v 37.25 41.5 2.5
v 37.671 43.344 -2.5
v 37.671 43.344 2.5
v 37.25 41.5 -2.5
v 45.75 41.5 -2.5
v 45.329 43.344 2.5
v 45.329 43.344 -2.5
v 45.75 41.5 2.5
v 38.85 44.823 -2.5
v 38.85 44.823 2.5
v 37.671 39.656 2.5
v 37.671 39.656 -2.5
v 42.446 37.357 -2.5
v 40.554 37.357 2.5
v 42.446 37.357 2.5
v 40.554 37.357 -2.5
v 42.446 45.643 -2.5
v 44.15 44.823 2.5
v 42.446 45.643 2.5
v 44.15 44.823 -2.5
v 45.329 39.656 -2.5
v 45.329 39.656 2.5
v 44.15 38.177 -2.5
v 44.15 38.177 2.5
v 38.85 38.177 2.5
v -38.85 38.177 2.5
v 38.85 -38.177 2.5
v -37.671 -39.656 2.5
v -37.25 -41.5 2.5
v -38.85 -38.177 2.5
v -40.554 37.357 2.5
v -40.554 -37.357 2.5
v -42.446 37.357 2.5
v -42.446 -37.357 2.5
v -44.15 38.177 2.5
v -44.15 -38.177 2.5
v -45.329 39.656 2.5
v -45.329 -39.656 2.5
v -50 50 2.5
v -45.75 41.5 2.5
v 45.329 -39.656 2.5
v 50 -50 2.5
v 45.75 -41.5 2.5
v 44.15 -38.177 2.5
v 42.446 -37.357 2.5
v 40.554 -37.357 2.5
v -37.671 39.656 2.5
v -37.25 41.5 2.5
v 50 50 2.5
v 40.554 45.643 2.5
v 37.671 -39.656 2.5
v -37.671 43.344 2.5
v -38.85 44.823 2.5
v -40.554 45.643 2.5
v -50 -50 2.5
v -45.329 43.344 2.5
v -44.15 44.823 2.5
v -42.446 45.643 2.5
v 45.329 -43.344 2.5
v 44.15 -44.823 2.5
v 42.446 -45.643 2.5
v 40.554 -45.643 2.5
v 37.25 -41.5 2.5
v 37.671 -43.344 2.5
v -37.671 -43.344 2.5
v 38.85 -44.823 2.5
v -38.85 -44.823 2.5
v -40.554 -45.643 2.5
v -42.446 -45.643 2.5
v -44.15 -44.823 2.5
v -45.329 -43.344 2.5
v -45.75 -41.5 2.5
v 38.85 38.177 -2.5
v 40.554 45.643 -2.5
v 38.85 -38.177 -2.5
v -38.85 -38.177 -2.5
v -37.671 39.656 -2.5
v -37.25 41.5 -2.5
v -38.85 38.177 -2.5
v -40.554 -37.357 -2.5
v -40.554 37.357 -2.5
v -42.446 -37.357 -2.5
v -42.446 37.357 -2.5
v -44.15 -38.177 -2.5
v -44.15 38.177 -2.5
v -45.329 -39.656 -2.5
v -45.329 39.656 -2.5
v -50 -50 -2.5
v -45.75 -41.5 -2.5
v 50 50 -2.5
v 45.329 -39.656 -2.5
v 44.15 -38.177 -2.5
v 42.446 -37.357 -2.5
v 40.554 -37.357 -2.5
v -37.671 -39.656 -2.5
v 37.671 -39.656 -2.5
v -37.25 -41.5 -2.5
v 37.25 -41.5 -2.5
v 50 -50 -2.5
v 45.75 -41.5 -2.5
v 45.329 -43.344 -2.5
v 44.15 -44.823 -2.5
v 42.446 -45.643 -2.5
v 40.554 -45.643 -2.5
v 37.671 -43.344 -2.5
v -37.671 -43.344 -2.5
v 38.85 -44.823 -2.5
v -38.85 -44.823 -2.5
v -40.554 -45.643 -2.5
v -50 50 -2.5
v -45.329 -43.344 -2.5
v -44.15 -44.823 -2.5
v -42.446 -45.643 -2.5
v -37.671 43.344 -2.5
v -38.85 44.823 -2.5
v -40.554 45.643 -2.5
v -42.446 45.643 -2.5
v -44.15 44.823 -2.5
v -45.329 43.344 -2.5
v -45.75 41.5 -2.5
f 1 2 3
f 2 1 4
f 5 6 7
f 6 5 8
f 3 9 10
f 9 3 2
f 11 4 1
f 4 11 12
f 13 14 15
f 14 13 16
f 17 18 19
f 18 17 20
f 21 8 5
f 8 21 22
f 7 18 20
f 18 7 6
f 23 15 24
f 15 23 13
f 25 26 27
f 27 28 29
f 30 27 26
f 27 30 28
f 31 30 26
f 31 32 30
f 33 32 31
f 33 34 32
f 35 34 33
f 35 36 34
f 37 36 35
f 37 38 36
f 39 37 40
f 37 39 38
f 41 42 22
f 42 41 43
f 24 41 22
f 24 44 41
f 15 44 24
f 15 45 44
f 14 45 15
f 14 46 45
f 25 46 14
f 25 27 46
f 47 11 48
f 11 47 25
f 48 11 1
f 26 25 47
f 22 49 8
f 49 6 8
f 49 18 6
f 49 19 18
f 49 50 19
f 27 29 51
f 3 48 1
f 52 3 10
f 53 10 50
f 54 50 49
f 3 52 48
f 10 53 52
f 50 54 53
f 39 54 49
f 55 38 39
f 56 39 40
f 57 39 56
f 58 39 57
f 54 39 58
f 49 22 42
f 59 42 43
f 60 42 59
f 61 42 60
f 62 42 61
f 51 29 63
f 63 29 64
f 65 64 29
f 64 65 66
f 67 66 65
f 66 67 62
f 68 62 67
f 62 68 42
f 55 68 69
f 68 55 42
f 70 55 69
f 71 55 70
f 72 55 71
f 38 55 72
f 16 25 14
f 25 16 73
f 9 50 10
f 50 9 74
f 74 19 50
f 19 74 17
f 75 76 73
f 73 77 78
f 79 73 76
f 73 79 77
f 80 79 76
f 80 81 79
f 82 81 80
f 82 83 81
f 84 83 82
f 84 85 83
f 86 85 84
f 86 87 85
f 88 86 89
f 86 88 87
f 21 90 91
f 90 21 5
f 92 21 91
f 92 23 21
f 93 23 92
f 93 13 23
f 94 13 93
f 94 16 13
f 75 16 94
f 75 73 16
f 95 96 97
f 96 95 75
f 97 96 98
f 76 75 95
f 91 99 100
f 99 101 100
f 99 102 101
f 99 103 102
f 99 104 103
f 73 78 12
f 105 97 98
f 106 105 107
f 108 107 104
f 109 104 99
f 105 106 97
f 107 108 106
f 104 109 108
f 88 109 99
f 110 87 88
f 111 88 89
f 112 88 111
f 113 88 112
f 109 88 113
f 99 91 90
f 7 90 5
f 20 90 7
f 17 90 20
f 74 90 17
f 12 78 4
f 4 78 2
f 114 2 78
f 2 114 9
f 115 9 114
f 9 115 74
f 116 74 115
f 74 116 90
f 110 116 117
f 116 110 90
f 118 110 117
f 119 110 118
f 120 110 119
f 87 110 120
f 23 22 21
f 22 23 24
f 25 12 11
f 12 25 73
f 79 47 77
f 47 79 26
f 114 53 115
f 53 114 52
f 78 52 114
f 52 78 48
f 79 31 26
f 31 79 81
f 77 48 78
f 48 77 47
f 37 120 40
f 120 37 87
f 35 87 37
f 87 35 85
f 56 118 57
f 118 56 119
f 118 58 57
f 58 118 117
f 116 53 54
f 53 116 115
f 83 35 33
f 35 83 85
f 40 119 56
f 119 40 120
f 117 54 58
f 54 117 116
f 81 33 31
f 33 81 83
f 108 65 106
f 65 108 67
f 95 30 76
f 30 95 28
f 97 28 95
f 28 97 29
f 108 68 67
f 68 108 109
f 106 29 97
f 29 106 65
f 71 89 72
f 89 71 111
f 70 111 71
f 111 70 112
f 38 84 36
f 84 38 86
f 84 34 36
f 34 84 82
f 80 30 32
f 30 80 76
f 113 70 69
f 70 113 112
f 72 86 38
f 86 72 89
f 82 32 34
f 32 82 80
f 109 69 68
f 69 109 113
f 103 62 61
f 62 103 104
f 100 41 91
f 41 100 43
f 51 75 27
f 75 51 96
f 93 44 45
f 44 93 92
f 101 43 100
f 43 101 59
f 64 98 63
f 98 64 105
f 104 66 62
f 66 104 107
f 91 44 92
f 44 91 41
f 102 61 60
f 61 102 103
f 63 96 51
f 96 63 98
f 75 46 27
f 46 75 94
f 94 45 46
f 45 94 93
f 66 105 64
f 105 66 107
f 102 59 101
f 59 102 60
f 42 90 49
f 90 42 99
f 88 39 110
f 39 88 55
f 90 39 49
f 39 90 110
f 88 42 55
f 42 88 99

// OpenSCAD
// Generated by SolidPython 1.1.3 on 2023-07-03 18:05:35


difference() {
	cube(center = true, size = [100, 100, 5]);
	union() {
		translate(v = [41.5000000000, 41.5000000000]) {
			cylinder(center = true, h = 5, r = 4.2500000000);
		}
		translate(v = [-41.5000000000, 41.5000000000]) {
			cylinder(center = true, h = 5, r = 4.2500000000);
		}
		translate(v = [-41.5000000000, -41.5000000000]) {
			cylinder(center = true, h = 5, r = 4.2500000000);
		}
		translate(v = [41.5000000000, -41.5000000000]) {
			cylinder(center = true, h = 5, r = 4.2500000000);
		}
	}
}
/***********************************************
*********      SolidPython code:      **********
************************************************
 
import solid
import numbers
import pudb
from solid.utils import *
import viewscad
import subprocess
import os
import os.path as osp
import math
import sys

chamfer_extrude=solid.import_scad("./chamfer_extrude.scad")
chamfer_extrude=chamfer_extrude.chamfer_extrude
r = viewscad.Renderer(width=800, height=800)

def debug(model,f_name,path="/home/ts/code/projects/mfd/designs/debug"):
    solid.scad_render_to_file(model,osp.join(path,f_name)+".scad")
#generate position list of wells using offset from center
wells_pos_from_center_4 = lambda offset: [[-offset,offset],
                                        [offset, offset],
                                        [-offset, -offset],
                                        [offset, -offset]]
#wells_pos_from_center_2 = lambda offset: [[0,offset],
#                                        [0, -offset]]
wells_pos_from_center_2 = lambda offset: [[offset,0],
                                        [-offset,0]]

def make_well(dims,shape=None,height=None,dxf=False):
    def circle_cylinder():
        if dxf or (height is None):
            well = solid.circle(r=dims, segments=64)
        else:
            well = solid.cylinder(r=dims, h=height, segments=64, center = True)
        return well
    if dims is None:
        sys.exit("radius needs to be a number")
    if isinstance(dims, numbers.Number):
        well =circle_cylinder()
    elif len(dims)==1:
        if isinstance(dims[1], numbers.Number):
            well =circle_cylinder()
        else:
            sys.exit("radius needs to be a number")
    elif len(dims)==2:
        well = solid.square(dims,center = True)
    elif len(dims)==3:
        well = solid.cube(dims, center = True)
    return well

def wells_top_bottom(center_gap,device_dims=None,shape=None,height=None, positions = None, dxf = False):
    well_shape = make_well(device_dims,shape=shape,height=height,dxf=dxf)
    wells = []
    if positions is None:
        offset = radius+radius/2.0
        positions = wells_pos_from_center_2(offset)
    if dxf or (height is None):
        height = 0
    for position in positions:
        if dxf:
            wells.append(solid.translate([position[0],position[1]])(well_shape))
        else:
            wells.append(solid.translate([position[0],position[1],height/2.0])(well_shape))
    return  union()(*wells)

#place wells in four corners 
def four_corner(radius,height=None, positions = None, dxf = False):
    #if well pos not specified set
    #to equally spaced by half radius
    if positions is None:
        offset = radius+radius/2.0
        positions = wells_pos_from_center_4(offset)
    if dxf or (height is None):
        height = 0
    #make wells at positions with specified radius and height
    wells = []
    for position in positions:
        #make circle if making dxf
        if dxf:
            well_shape = solid.circle(r=radius, segments=64)
            well_shape = solid.translate([position[0],position[1]])(well_shape)
        #if stl make cylinder
        else:
            well_shape = solid.cylinder(r=radius, h=height, segments=64, center = True)
            well_shape = solid.translate([position[0],position[1],height/2.0])(well_shape)
        wells.append(well_shape)
    return  union()(*wells)

#generate channels 
def make_channels(length,width,height=0,num_chans=1,max_chans=None,spacing=None, dxf = False,
                  rotate_channels=False):
    if dxf or (height is None):
        height = 0
    #if channel gap not defined, is equal to
    if spacing is None: spacing = width
    #calculate number of channels if fitting max num within given width
    if not max_chans is None:
        import math
        num_chans = math.floor((max_chans-spacing)/(width+spacing))
    #get total width of channel section  
    total_width = (width*num_chans)+(spacing*(num_chans-1))

    #make template channel
    #if rotate_channels: width, length = length, width
    if dxf:
        channel_t = solid.square([length,width],center = True)
    else:
        channel_t = solid.cube([length,width,height], center = True)

    #if number channels is even, offset the first channel to center its gap
    if num_chans % 2 == 0: centering = -(width/2.0+spacing/2.0)
    else: centering = 0
    #move template channel up to align bottom at z = 0 
    #and offset center if necessary
    if dxf:
        channel_t = solid.translate([0,centering])(channel_t)
    else:
        channel_t = solid.translate([0,centering,height/2.0])(channel_t)

    #if rotate_channels: length,width = width,length
    #start making the channels
    channels = []
    for i in range(num_chans):
        #if i=0 there is no translation
        #if i=1, we make the first channel adjacent to second
        direction = i

        #if i>=1, we add channels alternating left and right
        if i >= 1:
            direction = -(i/2.0)
            if i % 2 == 1: direction = (-direction)+0.5
                
        #make channel at right position and add it to channel list
        translation_coords = [0,direction*(width+spacing)]
        #if rotate_channels: translation_coords = [direction*(width+spacing),0]
        if dxf:
            channel = solid.translate(translation_coords)(channel_t)
        else:
            channel = solid.translate([*translation_coords,0])(channel_t)
        channels.append(channel)
    
    #group all channels as one object
    channels = union()(*channels)
    #compute the x,y,z dimensions in order to pass as arguments 
    #for construction of other parts of device (such as the chambers)
    measurements = {'x':(length/2.0,-length/2.0),
                    'y':(total_width/2.0,-total_width/2.0)}
    if not dxf:
        measurements['z'] = (height,0)
    if rotate_channels:
        channels = solid.rotate(90)(channels)
        measurements['x'],measurements['y']=measurements['y'],measurements['x']
    return channels,measurements

def make_chambers(msrs,height=None,extra=0,len_until=None,width=None, dxf = False):
    #computes x,y,z length
    total = lambda x : abs(x[0]) + abs(x[1])
    
    #if specific height if specified
    #otherwise use same height as channels
    if dxf:
        pass
    elif not height is None:
        msrs['z'] = (height,0)
    else:
        msrs['z'] = (0,0)
        
    #make copy of measurements from channels to modify chamber dimensions 
    #and add length to chambers as specified
    chamber_dims = msrs.copy()
    #calculate length of chamber to reach specified offset
    if not len_until is None:
        chamber_len = len_until-(msrs['x'][0])
    #or add specified length to channel length (if not specified, adds 0)
    else:
        chamber_len = msrs['x'][0]+extra
    #set the chamber length based 
    chamber_dims['x'] = (chamber_len/2.0,-(chamber_len/2.0))
    #compute final dimensions of chamber
    if not width is None:
        chamber_dims['y'] = (width/2.0,-width/2.0)
    chamber_dims = [total(size) for size in chamber_dims.values()]
        
    #calculate chamber translation offset to place adjacent to channels
    chamber_trslt = msrs['x'][0]+(chamber_len/2.0)
    #compute chamber translation coordinates to align with channels
    #x = 1 moves chamber above channels
    #x = -1 moves chamber below channels
    if dxf:
        trslt = lambda x : [x*(chamber_trslt),0]
    else:
        trslt = lambda x : [x*(chamber_trslt),0,msrs['z'][0]/2.0]
    
    #function to make chamber at top or at bottom 
    if dxf:
        move = lambda x : solid.translate(trslt(x))(solid.square(chamber_dims, center = True) )
    else:
        move = lambda x : solid.translate(trslt(x))(solid.cube(chamber_dims,center = True))
    #make top and bottom chambers and return them as grouped
    top = move(1)
    bottom = move(-1)
    #chambers=solid.rotate(90)(solid.union()(top,bottom))
    chambers=(solid.union()(top,bottom))

    return chambers

#create alignment features 
def alignment_features(unit,dims,grid_size, mask_size = None, alignment = "hollow", units_from_center = (2.5,2.5), corner_len=None):
    width = grid_size[0]*dims[0]
    length = grid_size[1]*dims[1]
    if mask_size is None and corner_len is None:
        corner_len = (dims[0] + dims[1]) /2 / 8
    corner = lambda thickness_div : solid.union()( solid.square([corner_len,corner_len/thickness_div],center=False), solid.square([corner_len/thickness_div,corner_len],center=False) )
    
    def make_full(thickness_div):
        thickness = corner_len/thickness_div
        tr = solid.translate([0, 0, 0 ])(solid.rotate(180)(corner(thickness_div)))
        tr = solid.translate([thickness/2,thickness/2,0])(tr)
        bl = solid.translate([0, 0, 0 ])(solid.rotate(0)(corner(thickness_div)))
        bl = solid.translate([-thickness/2,-thickness/2,0])(bl)
        return solid.union()(tr,bl)
    
    def make_hollow(thickness_div):
        thickness = corner_len/(thickness_div/2)
        inner = make_full(thickness_div)
        outer = make_full(thickness_div/2)
        hollow = outer - inner 
        return hollow
    
    center = (width /2 , length/2)
    mask_pos = lambda x,y : (center[0] + x*(float(units_from_center[0])*dims[0]), center[1] + y*(float(units_from_center[1])*dims[1]))
    positions = []
    positions.append(mask_pos(1,0))
    positions.append(mask_pos(0,1))
    positions.append(mask_pos(-1,0))
    positions.append(mask_pos(0,-1))
    make_mask = lambda mtype : make_hollow(8) if mtype == "hollow" else make_full(8)
    masks = [ solid.translate([*position,0])(make_mask(alignment)) for position in positions]
    
    solid.scad_render_to_file(solid.union()(*masks),"./designs/open_chamber/masks.scad")
    #return unit - solid.union()(*masks)
    return solid.union()(*masks,unit)

def create_outline(thickness, array, dims, grid_size,):
    width = grid_size[0]*dims[0] + thickness *2
    length = grid_size[1]*dims[1] + thickness *2
    outer = solid.translate([-thickness, -thickness,0])(solid.square([width, length]))
    return outer-array

def create_wall(wall_thickness, outline_thickness, dims, grid_size, wall_height = 2000, dxf = False):
    inner_width = grid_size[0]*dims[0] + outline_thickness *2
    inner_length = grid_size[1]*dims[1] + outline_thickness *2
    outer_width = inner_width + wall_thickness * 2
    outer_length = inner_length + wall_thickness * 2
    outer_pos_x = -outline_thickness-wall_thickness
    outer_pos_y = -outline_thickness-wall_thickness
    inner_pos_x = -outline_thickness
    inner_pos_y = -outline_thickness
    if dxf:
        inner_wall = solid.translate([inner_pos_x,
                                      inner_pos_y,
                                      0])(solid.square([inner_width, inner_length]))
        outer_wall = solid.translate([outer_pos_x,
                                      outer_pos_y,
                                      0])(solid.square([outer_width, outer_length]))

        return outer_wall-inner_wall
    else:
        inner_wall = solid.translate([inner_pos_x,
                                      inner_pos_y,
                                      0])(solid.cube([inner_width, inner_length,wall_height]))
        outer_wall = solid.translate([outer_pos_x,
                                      outer_pos_y,
                                      0])(solid.cube([outer_width, outer_length,wall_height]))

        return outer_wall-inner_wall, {'wall_height': wall_height,
                                       'wall_thickness': wall_thickness,
                                       'inner_width':inner_width,
                                       'inner_length': inner_length,
                                       'outer_width': outer_width,
                                       'outer_length': outer_length,
                                       'outer_pos_x' : outer_pos_x,
                                       'outer_pos_y' : outer_pos_y,
                                       'inner_pos_x' : inner_pos_x,
                                       'inner_pos_y' : inner_pos_y}

def create_thicker_wall(wall_thickness, outer_wall_offset, wall_dims, dims, grid_size, height_start = .2, height_end=2, dxf = False):
    addon_wall,thicker_wall_dims = create_wall(wall_thickness, outer_wall_offset, dims, grid_size, wall_height=height_end-height_start, dxf = False)
    addon_wall = solid.translate([0,0,height_start])(addon_wall)

    thicker_wall_dims['wall_height'] = height_end
    thicker_wall_dims['wall_thickness'] = wall_dims['wall_thickness'] + wall_thickness
    return addon_wall, thicker_wall_dims
 
def add_lock_to_wall(wall,wall_dims,y_offset = 0,cut_ratio=0.7,L_length=3, gap_ratio=0.05, axis="x",width_ratio=1/2):
    # Makes L shape
    def make_L(max_length,length_thickness,max_width,width_thickness,height,y_offset):
        length = solid.cube([max_length,length_thickness,height])
        width = solid.cube([width_thickness,max_width,height])
        width = solid.translate([max_length-(width_thickness),0,0])(width)
        L = solid.union()(width,length)
        debug(L,"L")
        if axis == "x":
            L = solid.rotate(-90)(L)
            L = solid.translate([0,max_length,0])(L)
        else:
            L = solid.rotate(-180)(L)
            L = solid.translate([max_length,max_width,0])(L)
        return solid.translate([0,0,y_offset])(L)
    
    lock_length = L_length
    lock_width = wall_dims['wall_thickness']*width_ratio
    lock_length_thickness = lock_width/2
    lock_width_thickness = lock_width/2
    L_lock = make_L(lock_length,lock_length_thickness,lock_width,lock_width_thickness, wall_dims['wall_height']-y_offset, y_offset)
    
    margin_space = lock_length - lock_length*(1-gap_ratio)
    key_length = lock_length-margin_space
    key_length_thickness = lock_length_thickness-(margin_space*2)
    key_width = lock_width-(margin_space*2)
    key_width_thickness = lock_width_thickness-(margin_space*2)
    L_key = make_L(key_length,key_length_thickness,key_width,key_width_thickness, wall_dims['wall_height']-y_offset, y_offset)
    L_key = solid.translate([margin_space,margin_space,0])(L_key)
    L = solid.union()(L_lock,L_key)
    debug(L,"L")
    
    #Make cube to be used as negative to split frame in a half
    #Can choose if making left or right negative, specify ratio of split
    def make_negative(right,cut_ratio):
        if axis == "x":
            if right:
                length = wall_dims['outer_length']*(1-cut_ratio)
                pos_x = wall_dims['outer_pos_x']+(wall_dims['outer_length']*cut_ratio)
            else:
                length = wall_dims['outer_length']*(cut_ratio)
                pos_x = wall_dims['outer_pos_x'] 
            negative = solid.cube([wall_dims['outer_width'],length, wall_dims['wall_height']])
            negative = solid.translate([wall_dims['outer_pos_y'],pos_x,0])(negative)
        else:
            if right:
                length = wall_dims['outer_width']*(1-cut_ratio)
                pos_x = wall_dims['outer_pos_y']+(wall_dims['outer_width']*cut_ratio)
            else:
                length = wall_dims['outer_width']*(cut_ratio)
                pos_x = wall_dims['outer_pos_y'] 
            negative = solid.cube([length,wall_dims['outer_length'], wall_dims['wall_height']])
            negative = solid.translate([pos_x,wall_dims['outer_pos_x'],0])(negative)
        return negative, pos_x, length 
                      
    #Make negatives
    negative_right, right_half_pos_x, right_half_length = make_negative(True,cut_ratio)
    negative_left, left_half_pos_x, right_half_length = make_negative(False,cut_ratio)
    #Make halves
    left_half = solid.difference()(wall,negative_right)
    right_half = solid.difference()(wall,negative_left)
    def place_L(L, L_length,L_width):
        #Place L on top wall       
        offset_to_center = (wall_dims['wall_thickness']-L_width)/2
        if axis == "x":
            y_pos_top = (wall_dims['outer_pos_y'] +
                    wall_dims['outer_width'] - 
                    L_width - offset_to_center)
            top_L = solid.translate([y_pos_top,
                                     right_half_pos_x-(L_length),
                                     0])(L)
            #Place L on bottom wall       
            y_pos_bottom = wall_dims['outer_pos_y']+offset_to_center
            bottom_L = solid.translate([y_pos_bottom,
                                        right_half_pos_x-L_length,
                                        0])(L)
        else:
            y_pos_top = (wall_dims['outer_pos_x'] +
                    wall_dims['outer_length'] -
                    (L_width+offset_to_center))
            top_L = solid.translate([right_half_pos_x-L_length,
                                     y_pos_top,
                                     0])(L)
            #Place L on bottom wall       
            y_pos_bottom = wall_dims['outer_pos_y']+offset_to_center
            bottom_L = solid.translate([right_half_pos_x-L_length,
                                        y_pos_bottom,
                                        0])(L)
        return bottom_L, top_L
    #Make complimentary L pieces through union and differences
    #Make Lock
    bottom_L_lock, top_L_lock = place_L(L_lock,L_length,lock_width)
    left_half = solid.difference()(left_half,bottom_L_lock)
    left_half = solid.difference()(left_half,top_L_lock)
    #Make Key
    bottom_L_key, top_L_key = place_L(L_key,L_length,lock_width)
    right_half = solid.union()(right_half,bottom_L_key)
    right_half = solid.union()(right_half,top_L_key)
    return left_half, right_half


#build a row x col grid of containment units
def make_unit_array(unit,dims,grid_size, dxf = False, alignment = None, mask_size = None,
                    units_from_center = None,alignment_offset=None, alignment_mark_size=1):
    units = []
    for col in range(grid_size[1]):
        for row in range(grid_size[0]):
            if dxf:
                units.append(solid.translate([row*dims[0],col*dims[1]])(unit))
            else:
                units.append(solid.translate([row*dims[0],col*dims[1],dims[2]/2.0])(unit))
    array = solid.union()(*units)
    if (not alignment is None) and dxf:
        if not alignment_offset is None:
            array = solid.translate([alignment_offset[0],alignment_offset[1]])(array)
        array = alignment_features(array,dims, grid_size, alignment = alignment, mask_size = None, units_from_center = units_from_center,corner_len=alignment_mark_size)
        if not alignment_offset is None:
            array = solid.translate([-alignment_offset[0],-alignment_offset[1]])(array)
    return array


def make_taylor(wells_pos = wells_pos_from_center_4(2.25), well_rad = 1.5 ,
                well_height = 2, chan_w = 0.01, chan_l = 1, chan_h = 0.010 ,
                chan_gap = 0.040, max_chans = None,num_chans=100, chamber_height  = 0.100,
                columns = 1, rows = 1, chamber_len_until=2.25, add_channels = True, add_wells = True, 
                add_chambers = True, save_path = "./", alignment = None, units_from_center = 2,
                mask_size = None, render_stl = False, outline_thickness = 0.050, dxf = True,
                wall_height = 15, wall_thickness = 0.95, casing_x=9, casing_y=9, casing_z=0,rotate_units=0):

    dims = [casing_x, casing_y, casing_z]
    wells = four_corner(well_rad,well_height, dxf = dxf, positions = wells_pos)
    debug(wells,"wells")
    channels, msrs = make_channels(chan_l,chan_w,chan_h,dxf=dxf, spacing = chan_gap, max_chans=max_chans,num_chans=num_chans)
    debug(channels,"channels")
    chambers = make_chambers(msrs,dxf = dxf, height=chamber_height,len_until=chamber_len_until)
    debug(chambers,"chambers")

    #add together and render
    device_parts = []
    if add_channels:
        device_parts.append(channels)
    if add_wells:
        device_parts.append(wells)
    if add_chambers:
        device_parts.append(chambers)
    device=union()(*device_parts)
    device = rotate(rotate_units)(device)

    device=solid.translate([dims[0]/2.0,dims[1]/2.0,0])(device)
    channels = rotate(rotate_units)(channels)
    channels=solid.translate([dims[0]/2,dims[1]/2,0])(channels)
    chambers_wells = union()(wells,chambers)
    chambers_wells = rotate(rotate_units)(chambers_wells)
    chambers_wells=solid.translate([dims[0]/2,dims[1]/2,0])(chambers_wells)

    file_name = str(rows)+'x'+str(columns)+'_units_'
    grid_size = [rows,columns]

    if alignment:
        alignment="full"
    device = make_unit_array(device,dims,grid_size, dxf=dxf, alignment = alignment,
                                 units_from_center = units_from_center)
    channels = make_unit_array(channels,dims,grid_size, dxf=dxf, alignment = alignment,
                                 units_from_center = units_from_center)
    if alignment=="full":
        alignment="hollow"

    chambers_wells = make_unit_array(chambers_wells,dims,grid_size, dxf=dxf, alignment = alignment,
                                 units_from_center =units_from_center)

    def save_model(model,prefix):
        model_fname = os.path.abspath(save_path+prefix+"_"+file_name+".scad")
        solid.scad_render_to_file(model,model_fname)
        return model_fname

    wells_fname = save_model(wells,"wells")
    channels_fname = save_model(channels,"channels")
    device_fname = save_model(device,"device")
    chambers_wells_fname = save_model(chambers_wells,"chambers_wells")
    return (chambers_wells,chambers_wells_fname), (channels,channels_fname), (device,device_fname)

def make_device(design='open',rows=8,columns=6,wells_pos = 4.5,well_offset=3.2, well_rad=3.2,well_height=0.1,
                chan_l=1,chan_w=0.01,chan_h=0.01,chan_gap=0.015,num_chans=101,dxf=True,save_path="./designs/open_chamber/",
                casing_x=9.0,casing_y=18.0,casing_z=0,rotate_units=90,units_from_center=(3,1),chamber_len_until=4.5,
                chamber_width=None,alignment=True, add_wells=True, add_channels=True,add_chambers=True):

    dims = [casing_x, casing_y, casing_z]
    if design == "open":
        wells_pos=wells_pos_from_center_2(wells_pos)
        wells = wells_top_bottom(well_offset*2,device_dims=well_rad,height=well_height, dxf = dxf, positions = wells_pos)
    elif design == "closed":
        wells_pos=wells_pos_from_center_4(wells_pos)
        debug(wells,"wells")
        wells = four_corner(well_offset,well_heightdevice_dims=well_rad, dxf = dxf, positions = wells_pos)
    else:
        print(design+" is not a valid design.\n Choose valid design: 'open' or 'closed'")
        exit()
    wells = rotate(rotate_units)(wells)
    wells=solid.translate([dims[0]/2,dims[1]/2,0])(wells)
    debug(wells,"wells")

    channels, msrs = make_channels(chan_l,chan_w,chan_h,dxf=dxf, spacing = chan_gap, num_chans=num_chans,rotate_channels=False)
    channels = rotate(rotate_units)(channels)
    channels=solid.translate([dims[0]/2,dims[1]/2,0])(channels)

    chambers=make_chambers(msrs,height=None,extra=0,len_until=chamber_len_until, width=chamber_width,dxf = dxf)
    chambers = rotate(rotate_units)(chambers)
    chambers=solid.translate([dims[0]/2,dims[1]/2,0])(chambers)

    device_parts = []
    if add_channels:
        device_parts.append(channels)
    if add_wells:
        device_parts.append(wells)
    if add_chambers:
        device_parts.append(chambers)
    device = union()(*device_parts)
    #device = rotate(rotate_units)(device)
    #device=solid.translate([dims[0]/2.0,dims[1]/2.0,0])(device)

    chambers_wells = []
    if add_chambers:
        chambers_wells.append(chambers)
    if add_wells:
        chambers_wells.append(wells)
    chambers_wells = union()(*chambers_wells)
    #chambers_wells = union()(wells,chambers)
    #chambers_wells = rotate(rotate_units)(chambers_wells)
    #chambers_wells=solid.translate([dims[0]/2,dims[1]/2,0])(chambers_wells)

    file_name = str(rows)+'x'+str(columns)+'_units_'

    grid_size = [rows,columns]
    if alignment:
        alignment="full"
    device = make_unit_array(device,dims,grid_size, dxf=dxf, alignment = alignment,
                                 units_from_center = units_from_center)
    channels = make_unit_array(channels,dims,grid_size, dxf=dxf, alignment = alignment,
                                 units_from_center = units_from_center)
    if alignment=="full":
        alignment="hollow"

    chambers_wells = make_unit_array(chambers_wells,dims,grid_size, dxf=dxf, alignment = alignment,
                                 units_from_center =units_from_center)

    def save_model(model,prefix):
        model_fname = os.path.abspath(save_path+prefix+"_"+file_name+".scad")
        solid.scad_render_to_file(model,model_fname)
        return model_fname

    wells_fname = save_model(wells,"wells")
    channels_fname = save_model(channels,"channels")
    device_fname = save_model(device,"device")
    chambers_wells_fname = save_model(chambers_wells,"chambers_wells")
    return (chambers_wells,chambers_wells_fname), (channels,channels_fname), (device,device_fname)


def make_open_chamber(rows=8,columns=6,wells_pos = wells_pos_from_center_2(4.5), well_rad=3.2,well_height=0.1,
                      chan_l=1,chan_w=0.01,chan_h=0.01,chan_gap=0.015,num_chans=101,dxf=True,save_path="./designs/open_chamber/",
                      casing_x=9.0,casing_y=18.0,casing_z=0,rotate_units=90,units_from_center=(3,1),chamber_len_until=4.5,
                      chamber_width=None,alignment=True, add_wells=True, add_channels=True,add_chambers=True):

    dims = [casing_x, casing_y, casing_z]
    wells = wells_top_bottom(well_rad,height=well_height, dxf = dxf, positions = wells_pos)
    channels, msrs = make_channels(chan_l,chan_w,chan_h,dxf=dxf, spacing = chan_gap, num_chans=num_chans,rotate_channels=False)
    chambers=make_chambers(msrs,height=None,extra=0,len_until=chamber_len_until, width=chamber_width,dxf = dxf)
    debug(chambers,"chambers")
    device_parts = []
    if add_channels:
        device_parts.append(channels)
    if add_wells:
        device_parts.append(wells)
    if add_chambers:
        device_parts.append(chambers)
    device = union()(*device_parts)
    device = rotate(rotate_units)(device)
    device=solid.translate([dims[0]/2.0,dims[1]/2.0,0])(device)
    channels = rotate(rotate_units)(channels)
    channels=solid.translate([dims[0]/2,dims[1]/2,0])(channels)
    chambers_wells = union()(wells,chambers)
    chambers_wells = rotate(rotate_units)(chambers_wells)
    chambers_wells=solid.translate([dims[0]/2,dims[1]/2,0])(chambers_wells)

    file_name = str(rows)+'x'+str(columns)+'_units_'

    grid_size = [rows,columns]
    if alignment:
        alignment="full"
    device = make_unit_array(device,dims,grid_size, dxf=dxf, alignment = alignment,
                                 units_from_center = units_from_center)
    channels = make_unit_array(channels,dims,grid_size, dxf=dxf, alignment = alignment,
                                 units_from_center = units_from_center)
    if alignment=="full":
        alignment="hollow"

    chambers_wells = make_unit_array(chambers_wells,dims,grid_size, dxf=dxf, alignment = alignment,
                                 units_from_center =units_from_center)

    def save_model(model,prefix):
        model_fname = os.path.abspath(save_path+prefix+"_"+file_name+".scad")
        solid.scad_render_to_file(model,model_fname)
        return model_fname

    wells_fname = save_model(wells,"wells")
    channels_fname = save_model(channels,"channels")
    device_fname = save_model(device,"device")
    chambers_wells_fname = save_model(chambers_wells,"chambers_wells")
    return (chambers_wells,chambers_wells_fname), (channels,channels_fname), (device,device_fname)

def to_dxf(scad_path):
    dxf_path = scad_path.replace(".scad",".dxf")
    subprocess.call(["openscad", "-o", dxf_path, scad_path])
    import ezdxf
    temp_dxf = ezdxf.readfile(dxf_path)
    temp_dxf.saveas(dxf_path)

#def make_walls(diameter,thickness,grid_size,dims,height=20,segments=256,make_inner=True):
#    wafer_wall_out = solid.cylinder(r=diameter/2,h=height, segments=segments)
#    wafer_wall_in = solid.cylinder(r=(diameter/2-thickness),h=height, segments=segments)
#    wafer_wall = solid.difference()(wafer_wall_out,wafer_wall_in)
#    wafer_wall = solid.translate([grid_size[1]*dims[1]/2.0,grid_size[0]*dims[0]/2.0])(wafer_wall)
#
#    vertical_wall_length = grid_size[1]*dims[1]
#    horizontal_wall_length = grid_size[0]*dims[0]
#    vertical_wall = solid.cube([vertical_wall_length,thickness,height],center = True)
#    vertical_wall = solid.translate([vertical_wall_length/2,0,height/2])(vertical_wall)
#    horizontal_wall = solid.cube([thickness,horizontal_wall_length,height],center = True)
#    horizontal_wall = solid.translate([0,vertical_wall_length/2,height/2])(horizontal_wall)
#    walls = []
#    walls.append(horizontal_wall)
#    walls.append(vertical_wall)
#    for col in range(grid_size[1]):
#        if col == grid_size[1]-1: 
#            walls.append(solid.translate([0,(col+1)*dims[1]])(vertical_wall))
#        elif col > 0 and col < grid_size[1]-1 and make_inner==True:
#            walls.append(solid.translate([0,(col+1)*dims[1]])(vertical_wall))
#    for row in range(grid_size[0]):
#        if row == grid_size[0]-1: 
#            walls.append(solid.translate([(row+1)*dims[0],0])(horizontal_wall))
#        elif row > 0 and row < grid_size[0]-1 and make_inner==True:
#            walls.append(solid.translate([(row+1)*dims[0],0])(horizontal_wall))
#    walls = union()(*walls)
#    wafer_walls = union()(walls,wafer_wall)
#    return walls,wafer_wall,wafer_walls

def make_walls(diameter,thickness,grid_size,dims,height=20,segments=256,make_inner=True,padx=0,pady=0):
    wafer_wall_out = solid.cylinder(r=diameter/2,h=height, segments=segments)
    wafer_wall_in = solid.cylinder(r=(diameter/2-thickness),h=height, segments=segments)
    wafer_wall = solid.difference()(wafer_wall_out,wafer_wall_in)
    wafer_wall = solid.translate([grid_size[1]*dims[1]/2.0,grid_size[0]*dims[0]/2.0])(wafer_wall)

    vertical_wall_length = grid_size[0]*dims[0]+padx
    horizontal_wall_length = grid_size[1]*dims[1]+pady
    vertical_wall = solid.cube([vertical_wall_length,thickness,height],center = True)
    vertical_wall = solid.translate([vertical_wall_length/2-pady/2,-padx/2,height/2])(vertical_wall)
    horizontal_wall = solid.cube([thickness,horizontal_wall_length,height],center = True)
    horizontal_wall = solid.translate([-pady/2,horizontal_wall_length/2-padx/2,height/2])(horizontal_wall)
    walls = []
    walls.append(horizontal_wall)
    walls.append(vertical_wall)
    for col in range(grid_size[1]):
        if col == grid_size[1]-1: 
            walls.append(solid.translate([0,(col+1)*dims[1]+pady])(vertical_wall))
        elif col > 0 and col < grid_size[1]-1 and make_inner==True:
            walls.append(solid.translate([0,(col+1)*dims[1]])(vertical_wall))
    for row in range(grid_size[0]):
        if row == grid_size[0]-1: 
            walls.append(solid.translate([(row+1)*dims[0]+padx,0])(horizontal_wall))
        elif row > 0 and row < grid_size[0]-1 and make_inner==True:
            walls.append(solid.translate([(row+1)*dims[0],0])(horizontal_wall))
    walls = union()(*walls)
    wafer_walls = union()(walls,wafer_wall)
    return walls,wafer_wall,wafer_walls

def save_model(model,base_path,base_name,dxf=True):
    if not os.path.exists(base_path):
        os.makedirs(base_path)
    dxf_path=osp.join(base_path,base_name+".scad")
    solid.scad_render_to_file(model,osp.join(dxf_path))
    if dxf:
        to_dxf(dxf_path)

def make_wafer(diameter,flat_len,thickness):
    wafer = solid.cylinder(r1=diameter/2,r2=diameter/2,h=thickness,segments=512,)()
    x_start_flat=(flat_len/2)
    y_start_flat = math.sqrt(((diameter/2)**2) - (x_start_flat**2) )
    height_delete_flat=diameter/2-y_start_flat
    flat_delete = solid.cube([flat_len,height_delete_flat,thickness],center=False)()
    flat_delete = solid.translate([-flat_len/2,y_start_flat,0])(flat_delete)
    wafer = solid.difference()(wafer,flat_delete)
    wafer = solid.rotate(90)(wafer)
    return wafer

def add_wafer_to_mask(wafer_size,flat_len,mask,grid_size,dims,wafer_line_thickness=0.1,outer_mask_thickness=5,alignment_offset=None):
    def make_wafer_mask(wafer_size,flat_len):
        wafer_mask = make_wafer(wafer_size,flat_len,1)
        wafer_mask = solid.projection()(wafer_mask)
        wafer_mask = solid.translate([grid_size[0]*dims[0]/2.0,grid_size[1]*dims[1]/2.0])(wafer_mask)
        if not alignment_offset is None:
            wafer_mask = solid.translate([-alignment_offset[0],-alignment_offset[1]])(wafer_mask)
        return wafer_mask

    inner_wafer_line_mask = make_wafer_mask(wafer_size-wafer_line_thickness/2,flat_len)
    outer_wafer_line_mask = make_wafer_mask(wafer_size+wafer_line_thickness/2,flat_len)
    outer_wafer_mask = make_wafer_mask(wafer_size+outer_mask_thickness,flat_len)
    outer_wafer_mask = solid.difference()(outer_wafer_mask,outer_wafer_line_mask)
    wafer_mask = solid.union()(outer_wafer_mask,inner_wafer_line_mask)

    return solid.difference()(wafer_mask,mask)

def make_posts(post_shape,post_height):
    posts = solid.linear_extrude(height=post_height)(post_shape)
    return posts

def make_wafer_empty(diameter,flat_len,thickness,margin,notch_len=20,notch_height=5,oversize=1.01):
    diameter*=oversize
    flat_len*=oversize
    wafer = make_wafer(diameter,flat_len,thickness)
    holder = solid.cylinder(r1=diameter/2+margin,r2=diameter/2+margin,h=thickness,segments=512)()
    holder = solid.difference()(holder,wafer)

    x_start_flat=(flat_len/2)
    y_start_flat = math.sqrt(((diameter/2)**2) - (x_start_flat**2) )
    height_delete_flat=diameter/2-y_start_flat
    notch = solid.cube([notch_len,notch_height,thickness],center=False)()
    notch = solid.translate([-notch_len/2,y_start_flat,0])(notch)
    notch = solid.rotate(90)(notch)
    return solid.difference()(holder,notch)

def wafer_print_calibration(diameter,thickness,height,z_offset):
    circles = []
    radii = []
    radii.append(diameter/2.0*0.8)
    radii.append(diameter/2.0*0.6)
    radii.append(diameter/2.0*0.4)
    radii.append(diameter/2.0*0.2)
    for radius in radii:
        inner = solid.cylinder(r1=radius-(thickness/2.0),r2=radius-(thickness/2.0),h=thickness,segments=512,)()
        outer = solid.cylinder(r1=radius+(thickness/2.0),r2=radius+(thickness/2.0),h=thickness,segments=512,)()
        diff = solid.difference()(outer,inner)
        circles.append(diff)
    circles = solid.union()(*circles)
    circles = solid.translate([0,0,z_offset])(circles)
    return circles

def make_rack(wells,dims,grid_size,alignment_offset,rack_x,rack_y,rack_thickness,bolt_width,add_bolts=True):

    #get X and Y dimensions of gride of pipette tips
    X_len = dims[0]*grid_size[0]
    Y_len = dims[1]*grid_size[1]
    #make rack
    rack = solid.cube([rack_x,rack_y,rack_thickness],center=True)

    if add_bolts:
    #add bolt holes
        bolt_hole=solid.cylinder(r=bolt_width/2,h=rack_thickness,center=True)()
        bolt_holes = []
        bolt_holes.append(solid.translate([rack_x/2-1.5*bolt_width,rack_y/2-1.5*bolt_width])(bolt_hole))
        bolt_holes.append(solid.translate([-rack_x/2+1.5*bolt_width,rack_y/2-1.5*bolt_width])(bolt_hole))
        bolt_holes.append(solid.translate([-rack_x/2+1.5*bolt_width,-rack_y/2+1.5*bolt_width])(bolt_hole))
        bolt_holes.append(solid.translate([rack_x/2-1.5*bolt_width,-rack_y/2+1.5*bolt_width])(bolt_hole))
        bolt_holes = solid.union()(*bolt_holes)
        rack=solid.difference()(rack,bolt_holes)
    rack_support = rack

    #center rack with pipette holes
    rack = solid.translate([0,0,rack_thickness/2])(rack)
    rack = solid.translate([X_len/2,Y_len/2])(rack)
    rack = solid.translate([-alignment_offset[0],-alignment_offset[1]])(rack)
    wells = solid.linear_extrude(height=rack_thickness)(wells)
    rack = solid.difference()(rack,wells)
    return rack, rack_support

def make_pillar(wells,dims,grid_size,alignment_offset,rack_x,rack_y,pillar_height,rack_thickness,bolt_width,add_bolts=True,taper_angle=1,bolt_position_corner=1.5):

    #get X and Y dimensions of gride of pipette tips
    X_len = dims[0]*grid_size[0]
    Y_len = dims[1]*grid_size[1]
    #make rack
    rack = solid.cube([rack_x,rack_y,rack_thickness],center=True)
    
    if add_bolts:
    #add bolt holes
        bolt_hole=solid.cylinder(r=bolt_width/2,h=rack_thickness,center=True)()
        bolt_holes = []
        bolt_holes.append(solid.translate([rack_x/2-bolt_position_corner*bolt_width,rack_y/2-bolt_position_corner*bolt_width])(bolt_hole))
        bolt_holes.append(solid.translate([-rack_x/2+bolt_position_corner*bolt_width,rack_y/2-bolt_position_corner*bolt_width])(bolt_hole))
        bolt_holes.append(solid.translate([-rack_x/2+bolt_position_corner*bolt_width,-rack_y/2+bolt_position_corner*bolt_width])(bolt_hole))
        bolt_holes.append(solid.translate([rack_x/2-bolt_position_corner*bolt_width,-rack_y/2+bolt_position_corner*bolt_width])(bolt_hole))
        bolt_holes = solid.union()(*bolt_holes)
        rack=solid.difference()(rack,bolt_holes)
    rack_support = rack

    #center rack with pipette holes
    #rack = solid.translate([0,0,-rack_thickness])(rack)
    rack = solid.translate([X_len/2,Y_len/2])(rack)
    rack = solid.translate([-alignment_offset[0],-alignment_offset[1]])(rack)
    if not taper_angle == 0:
        wells=chamfer_extrude(pillar_height,taper_angle,segments=20)(wells)
    else:
        wells = solid.linear_extrude(height=pillar_height)(wells)
    rack = solid.union()(rack,wells)
    return rack, rack_support









 
 
************************************************/
